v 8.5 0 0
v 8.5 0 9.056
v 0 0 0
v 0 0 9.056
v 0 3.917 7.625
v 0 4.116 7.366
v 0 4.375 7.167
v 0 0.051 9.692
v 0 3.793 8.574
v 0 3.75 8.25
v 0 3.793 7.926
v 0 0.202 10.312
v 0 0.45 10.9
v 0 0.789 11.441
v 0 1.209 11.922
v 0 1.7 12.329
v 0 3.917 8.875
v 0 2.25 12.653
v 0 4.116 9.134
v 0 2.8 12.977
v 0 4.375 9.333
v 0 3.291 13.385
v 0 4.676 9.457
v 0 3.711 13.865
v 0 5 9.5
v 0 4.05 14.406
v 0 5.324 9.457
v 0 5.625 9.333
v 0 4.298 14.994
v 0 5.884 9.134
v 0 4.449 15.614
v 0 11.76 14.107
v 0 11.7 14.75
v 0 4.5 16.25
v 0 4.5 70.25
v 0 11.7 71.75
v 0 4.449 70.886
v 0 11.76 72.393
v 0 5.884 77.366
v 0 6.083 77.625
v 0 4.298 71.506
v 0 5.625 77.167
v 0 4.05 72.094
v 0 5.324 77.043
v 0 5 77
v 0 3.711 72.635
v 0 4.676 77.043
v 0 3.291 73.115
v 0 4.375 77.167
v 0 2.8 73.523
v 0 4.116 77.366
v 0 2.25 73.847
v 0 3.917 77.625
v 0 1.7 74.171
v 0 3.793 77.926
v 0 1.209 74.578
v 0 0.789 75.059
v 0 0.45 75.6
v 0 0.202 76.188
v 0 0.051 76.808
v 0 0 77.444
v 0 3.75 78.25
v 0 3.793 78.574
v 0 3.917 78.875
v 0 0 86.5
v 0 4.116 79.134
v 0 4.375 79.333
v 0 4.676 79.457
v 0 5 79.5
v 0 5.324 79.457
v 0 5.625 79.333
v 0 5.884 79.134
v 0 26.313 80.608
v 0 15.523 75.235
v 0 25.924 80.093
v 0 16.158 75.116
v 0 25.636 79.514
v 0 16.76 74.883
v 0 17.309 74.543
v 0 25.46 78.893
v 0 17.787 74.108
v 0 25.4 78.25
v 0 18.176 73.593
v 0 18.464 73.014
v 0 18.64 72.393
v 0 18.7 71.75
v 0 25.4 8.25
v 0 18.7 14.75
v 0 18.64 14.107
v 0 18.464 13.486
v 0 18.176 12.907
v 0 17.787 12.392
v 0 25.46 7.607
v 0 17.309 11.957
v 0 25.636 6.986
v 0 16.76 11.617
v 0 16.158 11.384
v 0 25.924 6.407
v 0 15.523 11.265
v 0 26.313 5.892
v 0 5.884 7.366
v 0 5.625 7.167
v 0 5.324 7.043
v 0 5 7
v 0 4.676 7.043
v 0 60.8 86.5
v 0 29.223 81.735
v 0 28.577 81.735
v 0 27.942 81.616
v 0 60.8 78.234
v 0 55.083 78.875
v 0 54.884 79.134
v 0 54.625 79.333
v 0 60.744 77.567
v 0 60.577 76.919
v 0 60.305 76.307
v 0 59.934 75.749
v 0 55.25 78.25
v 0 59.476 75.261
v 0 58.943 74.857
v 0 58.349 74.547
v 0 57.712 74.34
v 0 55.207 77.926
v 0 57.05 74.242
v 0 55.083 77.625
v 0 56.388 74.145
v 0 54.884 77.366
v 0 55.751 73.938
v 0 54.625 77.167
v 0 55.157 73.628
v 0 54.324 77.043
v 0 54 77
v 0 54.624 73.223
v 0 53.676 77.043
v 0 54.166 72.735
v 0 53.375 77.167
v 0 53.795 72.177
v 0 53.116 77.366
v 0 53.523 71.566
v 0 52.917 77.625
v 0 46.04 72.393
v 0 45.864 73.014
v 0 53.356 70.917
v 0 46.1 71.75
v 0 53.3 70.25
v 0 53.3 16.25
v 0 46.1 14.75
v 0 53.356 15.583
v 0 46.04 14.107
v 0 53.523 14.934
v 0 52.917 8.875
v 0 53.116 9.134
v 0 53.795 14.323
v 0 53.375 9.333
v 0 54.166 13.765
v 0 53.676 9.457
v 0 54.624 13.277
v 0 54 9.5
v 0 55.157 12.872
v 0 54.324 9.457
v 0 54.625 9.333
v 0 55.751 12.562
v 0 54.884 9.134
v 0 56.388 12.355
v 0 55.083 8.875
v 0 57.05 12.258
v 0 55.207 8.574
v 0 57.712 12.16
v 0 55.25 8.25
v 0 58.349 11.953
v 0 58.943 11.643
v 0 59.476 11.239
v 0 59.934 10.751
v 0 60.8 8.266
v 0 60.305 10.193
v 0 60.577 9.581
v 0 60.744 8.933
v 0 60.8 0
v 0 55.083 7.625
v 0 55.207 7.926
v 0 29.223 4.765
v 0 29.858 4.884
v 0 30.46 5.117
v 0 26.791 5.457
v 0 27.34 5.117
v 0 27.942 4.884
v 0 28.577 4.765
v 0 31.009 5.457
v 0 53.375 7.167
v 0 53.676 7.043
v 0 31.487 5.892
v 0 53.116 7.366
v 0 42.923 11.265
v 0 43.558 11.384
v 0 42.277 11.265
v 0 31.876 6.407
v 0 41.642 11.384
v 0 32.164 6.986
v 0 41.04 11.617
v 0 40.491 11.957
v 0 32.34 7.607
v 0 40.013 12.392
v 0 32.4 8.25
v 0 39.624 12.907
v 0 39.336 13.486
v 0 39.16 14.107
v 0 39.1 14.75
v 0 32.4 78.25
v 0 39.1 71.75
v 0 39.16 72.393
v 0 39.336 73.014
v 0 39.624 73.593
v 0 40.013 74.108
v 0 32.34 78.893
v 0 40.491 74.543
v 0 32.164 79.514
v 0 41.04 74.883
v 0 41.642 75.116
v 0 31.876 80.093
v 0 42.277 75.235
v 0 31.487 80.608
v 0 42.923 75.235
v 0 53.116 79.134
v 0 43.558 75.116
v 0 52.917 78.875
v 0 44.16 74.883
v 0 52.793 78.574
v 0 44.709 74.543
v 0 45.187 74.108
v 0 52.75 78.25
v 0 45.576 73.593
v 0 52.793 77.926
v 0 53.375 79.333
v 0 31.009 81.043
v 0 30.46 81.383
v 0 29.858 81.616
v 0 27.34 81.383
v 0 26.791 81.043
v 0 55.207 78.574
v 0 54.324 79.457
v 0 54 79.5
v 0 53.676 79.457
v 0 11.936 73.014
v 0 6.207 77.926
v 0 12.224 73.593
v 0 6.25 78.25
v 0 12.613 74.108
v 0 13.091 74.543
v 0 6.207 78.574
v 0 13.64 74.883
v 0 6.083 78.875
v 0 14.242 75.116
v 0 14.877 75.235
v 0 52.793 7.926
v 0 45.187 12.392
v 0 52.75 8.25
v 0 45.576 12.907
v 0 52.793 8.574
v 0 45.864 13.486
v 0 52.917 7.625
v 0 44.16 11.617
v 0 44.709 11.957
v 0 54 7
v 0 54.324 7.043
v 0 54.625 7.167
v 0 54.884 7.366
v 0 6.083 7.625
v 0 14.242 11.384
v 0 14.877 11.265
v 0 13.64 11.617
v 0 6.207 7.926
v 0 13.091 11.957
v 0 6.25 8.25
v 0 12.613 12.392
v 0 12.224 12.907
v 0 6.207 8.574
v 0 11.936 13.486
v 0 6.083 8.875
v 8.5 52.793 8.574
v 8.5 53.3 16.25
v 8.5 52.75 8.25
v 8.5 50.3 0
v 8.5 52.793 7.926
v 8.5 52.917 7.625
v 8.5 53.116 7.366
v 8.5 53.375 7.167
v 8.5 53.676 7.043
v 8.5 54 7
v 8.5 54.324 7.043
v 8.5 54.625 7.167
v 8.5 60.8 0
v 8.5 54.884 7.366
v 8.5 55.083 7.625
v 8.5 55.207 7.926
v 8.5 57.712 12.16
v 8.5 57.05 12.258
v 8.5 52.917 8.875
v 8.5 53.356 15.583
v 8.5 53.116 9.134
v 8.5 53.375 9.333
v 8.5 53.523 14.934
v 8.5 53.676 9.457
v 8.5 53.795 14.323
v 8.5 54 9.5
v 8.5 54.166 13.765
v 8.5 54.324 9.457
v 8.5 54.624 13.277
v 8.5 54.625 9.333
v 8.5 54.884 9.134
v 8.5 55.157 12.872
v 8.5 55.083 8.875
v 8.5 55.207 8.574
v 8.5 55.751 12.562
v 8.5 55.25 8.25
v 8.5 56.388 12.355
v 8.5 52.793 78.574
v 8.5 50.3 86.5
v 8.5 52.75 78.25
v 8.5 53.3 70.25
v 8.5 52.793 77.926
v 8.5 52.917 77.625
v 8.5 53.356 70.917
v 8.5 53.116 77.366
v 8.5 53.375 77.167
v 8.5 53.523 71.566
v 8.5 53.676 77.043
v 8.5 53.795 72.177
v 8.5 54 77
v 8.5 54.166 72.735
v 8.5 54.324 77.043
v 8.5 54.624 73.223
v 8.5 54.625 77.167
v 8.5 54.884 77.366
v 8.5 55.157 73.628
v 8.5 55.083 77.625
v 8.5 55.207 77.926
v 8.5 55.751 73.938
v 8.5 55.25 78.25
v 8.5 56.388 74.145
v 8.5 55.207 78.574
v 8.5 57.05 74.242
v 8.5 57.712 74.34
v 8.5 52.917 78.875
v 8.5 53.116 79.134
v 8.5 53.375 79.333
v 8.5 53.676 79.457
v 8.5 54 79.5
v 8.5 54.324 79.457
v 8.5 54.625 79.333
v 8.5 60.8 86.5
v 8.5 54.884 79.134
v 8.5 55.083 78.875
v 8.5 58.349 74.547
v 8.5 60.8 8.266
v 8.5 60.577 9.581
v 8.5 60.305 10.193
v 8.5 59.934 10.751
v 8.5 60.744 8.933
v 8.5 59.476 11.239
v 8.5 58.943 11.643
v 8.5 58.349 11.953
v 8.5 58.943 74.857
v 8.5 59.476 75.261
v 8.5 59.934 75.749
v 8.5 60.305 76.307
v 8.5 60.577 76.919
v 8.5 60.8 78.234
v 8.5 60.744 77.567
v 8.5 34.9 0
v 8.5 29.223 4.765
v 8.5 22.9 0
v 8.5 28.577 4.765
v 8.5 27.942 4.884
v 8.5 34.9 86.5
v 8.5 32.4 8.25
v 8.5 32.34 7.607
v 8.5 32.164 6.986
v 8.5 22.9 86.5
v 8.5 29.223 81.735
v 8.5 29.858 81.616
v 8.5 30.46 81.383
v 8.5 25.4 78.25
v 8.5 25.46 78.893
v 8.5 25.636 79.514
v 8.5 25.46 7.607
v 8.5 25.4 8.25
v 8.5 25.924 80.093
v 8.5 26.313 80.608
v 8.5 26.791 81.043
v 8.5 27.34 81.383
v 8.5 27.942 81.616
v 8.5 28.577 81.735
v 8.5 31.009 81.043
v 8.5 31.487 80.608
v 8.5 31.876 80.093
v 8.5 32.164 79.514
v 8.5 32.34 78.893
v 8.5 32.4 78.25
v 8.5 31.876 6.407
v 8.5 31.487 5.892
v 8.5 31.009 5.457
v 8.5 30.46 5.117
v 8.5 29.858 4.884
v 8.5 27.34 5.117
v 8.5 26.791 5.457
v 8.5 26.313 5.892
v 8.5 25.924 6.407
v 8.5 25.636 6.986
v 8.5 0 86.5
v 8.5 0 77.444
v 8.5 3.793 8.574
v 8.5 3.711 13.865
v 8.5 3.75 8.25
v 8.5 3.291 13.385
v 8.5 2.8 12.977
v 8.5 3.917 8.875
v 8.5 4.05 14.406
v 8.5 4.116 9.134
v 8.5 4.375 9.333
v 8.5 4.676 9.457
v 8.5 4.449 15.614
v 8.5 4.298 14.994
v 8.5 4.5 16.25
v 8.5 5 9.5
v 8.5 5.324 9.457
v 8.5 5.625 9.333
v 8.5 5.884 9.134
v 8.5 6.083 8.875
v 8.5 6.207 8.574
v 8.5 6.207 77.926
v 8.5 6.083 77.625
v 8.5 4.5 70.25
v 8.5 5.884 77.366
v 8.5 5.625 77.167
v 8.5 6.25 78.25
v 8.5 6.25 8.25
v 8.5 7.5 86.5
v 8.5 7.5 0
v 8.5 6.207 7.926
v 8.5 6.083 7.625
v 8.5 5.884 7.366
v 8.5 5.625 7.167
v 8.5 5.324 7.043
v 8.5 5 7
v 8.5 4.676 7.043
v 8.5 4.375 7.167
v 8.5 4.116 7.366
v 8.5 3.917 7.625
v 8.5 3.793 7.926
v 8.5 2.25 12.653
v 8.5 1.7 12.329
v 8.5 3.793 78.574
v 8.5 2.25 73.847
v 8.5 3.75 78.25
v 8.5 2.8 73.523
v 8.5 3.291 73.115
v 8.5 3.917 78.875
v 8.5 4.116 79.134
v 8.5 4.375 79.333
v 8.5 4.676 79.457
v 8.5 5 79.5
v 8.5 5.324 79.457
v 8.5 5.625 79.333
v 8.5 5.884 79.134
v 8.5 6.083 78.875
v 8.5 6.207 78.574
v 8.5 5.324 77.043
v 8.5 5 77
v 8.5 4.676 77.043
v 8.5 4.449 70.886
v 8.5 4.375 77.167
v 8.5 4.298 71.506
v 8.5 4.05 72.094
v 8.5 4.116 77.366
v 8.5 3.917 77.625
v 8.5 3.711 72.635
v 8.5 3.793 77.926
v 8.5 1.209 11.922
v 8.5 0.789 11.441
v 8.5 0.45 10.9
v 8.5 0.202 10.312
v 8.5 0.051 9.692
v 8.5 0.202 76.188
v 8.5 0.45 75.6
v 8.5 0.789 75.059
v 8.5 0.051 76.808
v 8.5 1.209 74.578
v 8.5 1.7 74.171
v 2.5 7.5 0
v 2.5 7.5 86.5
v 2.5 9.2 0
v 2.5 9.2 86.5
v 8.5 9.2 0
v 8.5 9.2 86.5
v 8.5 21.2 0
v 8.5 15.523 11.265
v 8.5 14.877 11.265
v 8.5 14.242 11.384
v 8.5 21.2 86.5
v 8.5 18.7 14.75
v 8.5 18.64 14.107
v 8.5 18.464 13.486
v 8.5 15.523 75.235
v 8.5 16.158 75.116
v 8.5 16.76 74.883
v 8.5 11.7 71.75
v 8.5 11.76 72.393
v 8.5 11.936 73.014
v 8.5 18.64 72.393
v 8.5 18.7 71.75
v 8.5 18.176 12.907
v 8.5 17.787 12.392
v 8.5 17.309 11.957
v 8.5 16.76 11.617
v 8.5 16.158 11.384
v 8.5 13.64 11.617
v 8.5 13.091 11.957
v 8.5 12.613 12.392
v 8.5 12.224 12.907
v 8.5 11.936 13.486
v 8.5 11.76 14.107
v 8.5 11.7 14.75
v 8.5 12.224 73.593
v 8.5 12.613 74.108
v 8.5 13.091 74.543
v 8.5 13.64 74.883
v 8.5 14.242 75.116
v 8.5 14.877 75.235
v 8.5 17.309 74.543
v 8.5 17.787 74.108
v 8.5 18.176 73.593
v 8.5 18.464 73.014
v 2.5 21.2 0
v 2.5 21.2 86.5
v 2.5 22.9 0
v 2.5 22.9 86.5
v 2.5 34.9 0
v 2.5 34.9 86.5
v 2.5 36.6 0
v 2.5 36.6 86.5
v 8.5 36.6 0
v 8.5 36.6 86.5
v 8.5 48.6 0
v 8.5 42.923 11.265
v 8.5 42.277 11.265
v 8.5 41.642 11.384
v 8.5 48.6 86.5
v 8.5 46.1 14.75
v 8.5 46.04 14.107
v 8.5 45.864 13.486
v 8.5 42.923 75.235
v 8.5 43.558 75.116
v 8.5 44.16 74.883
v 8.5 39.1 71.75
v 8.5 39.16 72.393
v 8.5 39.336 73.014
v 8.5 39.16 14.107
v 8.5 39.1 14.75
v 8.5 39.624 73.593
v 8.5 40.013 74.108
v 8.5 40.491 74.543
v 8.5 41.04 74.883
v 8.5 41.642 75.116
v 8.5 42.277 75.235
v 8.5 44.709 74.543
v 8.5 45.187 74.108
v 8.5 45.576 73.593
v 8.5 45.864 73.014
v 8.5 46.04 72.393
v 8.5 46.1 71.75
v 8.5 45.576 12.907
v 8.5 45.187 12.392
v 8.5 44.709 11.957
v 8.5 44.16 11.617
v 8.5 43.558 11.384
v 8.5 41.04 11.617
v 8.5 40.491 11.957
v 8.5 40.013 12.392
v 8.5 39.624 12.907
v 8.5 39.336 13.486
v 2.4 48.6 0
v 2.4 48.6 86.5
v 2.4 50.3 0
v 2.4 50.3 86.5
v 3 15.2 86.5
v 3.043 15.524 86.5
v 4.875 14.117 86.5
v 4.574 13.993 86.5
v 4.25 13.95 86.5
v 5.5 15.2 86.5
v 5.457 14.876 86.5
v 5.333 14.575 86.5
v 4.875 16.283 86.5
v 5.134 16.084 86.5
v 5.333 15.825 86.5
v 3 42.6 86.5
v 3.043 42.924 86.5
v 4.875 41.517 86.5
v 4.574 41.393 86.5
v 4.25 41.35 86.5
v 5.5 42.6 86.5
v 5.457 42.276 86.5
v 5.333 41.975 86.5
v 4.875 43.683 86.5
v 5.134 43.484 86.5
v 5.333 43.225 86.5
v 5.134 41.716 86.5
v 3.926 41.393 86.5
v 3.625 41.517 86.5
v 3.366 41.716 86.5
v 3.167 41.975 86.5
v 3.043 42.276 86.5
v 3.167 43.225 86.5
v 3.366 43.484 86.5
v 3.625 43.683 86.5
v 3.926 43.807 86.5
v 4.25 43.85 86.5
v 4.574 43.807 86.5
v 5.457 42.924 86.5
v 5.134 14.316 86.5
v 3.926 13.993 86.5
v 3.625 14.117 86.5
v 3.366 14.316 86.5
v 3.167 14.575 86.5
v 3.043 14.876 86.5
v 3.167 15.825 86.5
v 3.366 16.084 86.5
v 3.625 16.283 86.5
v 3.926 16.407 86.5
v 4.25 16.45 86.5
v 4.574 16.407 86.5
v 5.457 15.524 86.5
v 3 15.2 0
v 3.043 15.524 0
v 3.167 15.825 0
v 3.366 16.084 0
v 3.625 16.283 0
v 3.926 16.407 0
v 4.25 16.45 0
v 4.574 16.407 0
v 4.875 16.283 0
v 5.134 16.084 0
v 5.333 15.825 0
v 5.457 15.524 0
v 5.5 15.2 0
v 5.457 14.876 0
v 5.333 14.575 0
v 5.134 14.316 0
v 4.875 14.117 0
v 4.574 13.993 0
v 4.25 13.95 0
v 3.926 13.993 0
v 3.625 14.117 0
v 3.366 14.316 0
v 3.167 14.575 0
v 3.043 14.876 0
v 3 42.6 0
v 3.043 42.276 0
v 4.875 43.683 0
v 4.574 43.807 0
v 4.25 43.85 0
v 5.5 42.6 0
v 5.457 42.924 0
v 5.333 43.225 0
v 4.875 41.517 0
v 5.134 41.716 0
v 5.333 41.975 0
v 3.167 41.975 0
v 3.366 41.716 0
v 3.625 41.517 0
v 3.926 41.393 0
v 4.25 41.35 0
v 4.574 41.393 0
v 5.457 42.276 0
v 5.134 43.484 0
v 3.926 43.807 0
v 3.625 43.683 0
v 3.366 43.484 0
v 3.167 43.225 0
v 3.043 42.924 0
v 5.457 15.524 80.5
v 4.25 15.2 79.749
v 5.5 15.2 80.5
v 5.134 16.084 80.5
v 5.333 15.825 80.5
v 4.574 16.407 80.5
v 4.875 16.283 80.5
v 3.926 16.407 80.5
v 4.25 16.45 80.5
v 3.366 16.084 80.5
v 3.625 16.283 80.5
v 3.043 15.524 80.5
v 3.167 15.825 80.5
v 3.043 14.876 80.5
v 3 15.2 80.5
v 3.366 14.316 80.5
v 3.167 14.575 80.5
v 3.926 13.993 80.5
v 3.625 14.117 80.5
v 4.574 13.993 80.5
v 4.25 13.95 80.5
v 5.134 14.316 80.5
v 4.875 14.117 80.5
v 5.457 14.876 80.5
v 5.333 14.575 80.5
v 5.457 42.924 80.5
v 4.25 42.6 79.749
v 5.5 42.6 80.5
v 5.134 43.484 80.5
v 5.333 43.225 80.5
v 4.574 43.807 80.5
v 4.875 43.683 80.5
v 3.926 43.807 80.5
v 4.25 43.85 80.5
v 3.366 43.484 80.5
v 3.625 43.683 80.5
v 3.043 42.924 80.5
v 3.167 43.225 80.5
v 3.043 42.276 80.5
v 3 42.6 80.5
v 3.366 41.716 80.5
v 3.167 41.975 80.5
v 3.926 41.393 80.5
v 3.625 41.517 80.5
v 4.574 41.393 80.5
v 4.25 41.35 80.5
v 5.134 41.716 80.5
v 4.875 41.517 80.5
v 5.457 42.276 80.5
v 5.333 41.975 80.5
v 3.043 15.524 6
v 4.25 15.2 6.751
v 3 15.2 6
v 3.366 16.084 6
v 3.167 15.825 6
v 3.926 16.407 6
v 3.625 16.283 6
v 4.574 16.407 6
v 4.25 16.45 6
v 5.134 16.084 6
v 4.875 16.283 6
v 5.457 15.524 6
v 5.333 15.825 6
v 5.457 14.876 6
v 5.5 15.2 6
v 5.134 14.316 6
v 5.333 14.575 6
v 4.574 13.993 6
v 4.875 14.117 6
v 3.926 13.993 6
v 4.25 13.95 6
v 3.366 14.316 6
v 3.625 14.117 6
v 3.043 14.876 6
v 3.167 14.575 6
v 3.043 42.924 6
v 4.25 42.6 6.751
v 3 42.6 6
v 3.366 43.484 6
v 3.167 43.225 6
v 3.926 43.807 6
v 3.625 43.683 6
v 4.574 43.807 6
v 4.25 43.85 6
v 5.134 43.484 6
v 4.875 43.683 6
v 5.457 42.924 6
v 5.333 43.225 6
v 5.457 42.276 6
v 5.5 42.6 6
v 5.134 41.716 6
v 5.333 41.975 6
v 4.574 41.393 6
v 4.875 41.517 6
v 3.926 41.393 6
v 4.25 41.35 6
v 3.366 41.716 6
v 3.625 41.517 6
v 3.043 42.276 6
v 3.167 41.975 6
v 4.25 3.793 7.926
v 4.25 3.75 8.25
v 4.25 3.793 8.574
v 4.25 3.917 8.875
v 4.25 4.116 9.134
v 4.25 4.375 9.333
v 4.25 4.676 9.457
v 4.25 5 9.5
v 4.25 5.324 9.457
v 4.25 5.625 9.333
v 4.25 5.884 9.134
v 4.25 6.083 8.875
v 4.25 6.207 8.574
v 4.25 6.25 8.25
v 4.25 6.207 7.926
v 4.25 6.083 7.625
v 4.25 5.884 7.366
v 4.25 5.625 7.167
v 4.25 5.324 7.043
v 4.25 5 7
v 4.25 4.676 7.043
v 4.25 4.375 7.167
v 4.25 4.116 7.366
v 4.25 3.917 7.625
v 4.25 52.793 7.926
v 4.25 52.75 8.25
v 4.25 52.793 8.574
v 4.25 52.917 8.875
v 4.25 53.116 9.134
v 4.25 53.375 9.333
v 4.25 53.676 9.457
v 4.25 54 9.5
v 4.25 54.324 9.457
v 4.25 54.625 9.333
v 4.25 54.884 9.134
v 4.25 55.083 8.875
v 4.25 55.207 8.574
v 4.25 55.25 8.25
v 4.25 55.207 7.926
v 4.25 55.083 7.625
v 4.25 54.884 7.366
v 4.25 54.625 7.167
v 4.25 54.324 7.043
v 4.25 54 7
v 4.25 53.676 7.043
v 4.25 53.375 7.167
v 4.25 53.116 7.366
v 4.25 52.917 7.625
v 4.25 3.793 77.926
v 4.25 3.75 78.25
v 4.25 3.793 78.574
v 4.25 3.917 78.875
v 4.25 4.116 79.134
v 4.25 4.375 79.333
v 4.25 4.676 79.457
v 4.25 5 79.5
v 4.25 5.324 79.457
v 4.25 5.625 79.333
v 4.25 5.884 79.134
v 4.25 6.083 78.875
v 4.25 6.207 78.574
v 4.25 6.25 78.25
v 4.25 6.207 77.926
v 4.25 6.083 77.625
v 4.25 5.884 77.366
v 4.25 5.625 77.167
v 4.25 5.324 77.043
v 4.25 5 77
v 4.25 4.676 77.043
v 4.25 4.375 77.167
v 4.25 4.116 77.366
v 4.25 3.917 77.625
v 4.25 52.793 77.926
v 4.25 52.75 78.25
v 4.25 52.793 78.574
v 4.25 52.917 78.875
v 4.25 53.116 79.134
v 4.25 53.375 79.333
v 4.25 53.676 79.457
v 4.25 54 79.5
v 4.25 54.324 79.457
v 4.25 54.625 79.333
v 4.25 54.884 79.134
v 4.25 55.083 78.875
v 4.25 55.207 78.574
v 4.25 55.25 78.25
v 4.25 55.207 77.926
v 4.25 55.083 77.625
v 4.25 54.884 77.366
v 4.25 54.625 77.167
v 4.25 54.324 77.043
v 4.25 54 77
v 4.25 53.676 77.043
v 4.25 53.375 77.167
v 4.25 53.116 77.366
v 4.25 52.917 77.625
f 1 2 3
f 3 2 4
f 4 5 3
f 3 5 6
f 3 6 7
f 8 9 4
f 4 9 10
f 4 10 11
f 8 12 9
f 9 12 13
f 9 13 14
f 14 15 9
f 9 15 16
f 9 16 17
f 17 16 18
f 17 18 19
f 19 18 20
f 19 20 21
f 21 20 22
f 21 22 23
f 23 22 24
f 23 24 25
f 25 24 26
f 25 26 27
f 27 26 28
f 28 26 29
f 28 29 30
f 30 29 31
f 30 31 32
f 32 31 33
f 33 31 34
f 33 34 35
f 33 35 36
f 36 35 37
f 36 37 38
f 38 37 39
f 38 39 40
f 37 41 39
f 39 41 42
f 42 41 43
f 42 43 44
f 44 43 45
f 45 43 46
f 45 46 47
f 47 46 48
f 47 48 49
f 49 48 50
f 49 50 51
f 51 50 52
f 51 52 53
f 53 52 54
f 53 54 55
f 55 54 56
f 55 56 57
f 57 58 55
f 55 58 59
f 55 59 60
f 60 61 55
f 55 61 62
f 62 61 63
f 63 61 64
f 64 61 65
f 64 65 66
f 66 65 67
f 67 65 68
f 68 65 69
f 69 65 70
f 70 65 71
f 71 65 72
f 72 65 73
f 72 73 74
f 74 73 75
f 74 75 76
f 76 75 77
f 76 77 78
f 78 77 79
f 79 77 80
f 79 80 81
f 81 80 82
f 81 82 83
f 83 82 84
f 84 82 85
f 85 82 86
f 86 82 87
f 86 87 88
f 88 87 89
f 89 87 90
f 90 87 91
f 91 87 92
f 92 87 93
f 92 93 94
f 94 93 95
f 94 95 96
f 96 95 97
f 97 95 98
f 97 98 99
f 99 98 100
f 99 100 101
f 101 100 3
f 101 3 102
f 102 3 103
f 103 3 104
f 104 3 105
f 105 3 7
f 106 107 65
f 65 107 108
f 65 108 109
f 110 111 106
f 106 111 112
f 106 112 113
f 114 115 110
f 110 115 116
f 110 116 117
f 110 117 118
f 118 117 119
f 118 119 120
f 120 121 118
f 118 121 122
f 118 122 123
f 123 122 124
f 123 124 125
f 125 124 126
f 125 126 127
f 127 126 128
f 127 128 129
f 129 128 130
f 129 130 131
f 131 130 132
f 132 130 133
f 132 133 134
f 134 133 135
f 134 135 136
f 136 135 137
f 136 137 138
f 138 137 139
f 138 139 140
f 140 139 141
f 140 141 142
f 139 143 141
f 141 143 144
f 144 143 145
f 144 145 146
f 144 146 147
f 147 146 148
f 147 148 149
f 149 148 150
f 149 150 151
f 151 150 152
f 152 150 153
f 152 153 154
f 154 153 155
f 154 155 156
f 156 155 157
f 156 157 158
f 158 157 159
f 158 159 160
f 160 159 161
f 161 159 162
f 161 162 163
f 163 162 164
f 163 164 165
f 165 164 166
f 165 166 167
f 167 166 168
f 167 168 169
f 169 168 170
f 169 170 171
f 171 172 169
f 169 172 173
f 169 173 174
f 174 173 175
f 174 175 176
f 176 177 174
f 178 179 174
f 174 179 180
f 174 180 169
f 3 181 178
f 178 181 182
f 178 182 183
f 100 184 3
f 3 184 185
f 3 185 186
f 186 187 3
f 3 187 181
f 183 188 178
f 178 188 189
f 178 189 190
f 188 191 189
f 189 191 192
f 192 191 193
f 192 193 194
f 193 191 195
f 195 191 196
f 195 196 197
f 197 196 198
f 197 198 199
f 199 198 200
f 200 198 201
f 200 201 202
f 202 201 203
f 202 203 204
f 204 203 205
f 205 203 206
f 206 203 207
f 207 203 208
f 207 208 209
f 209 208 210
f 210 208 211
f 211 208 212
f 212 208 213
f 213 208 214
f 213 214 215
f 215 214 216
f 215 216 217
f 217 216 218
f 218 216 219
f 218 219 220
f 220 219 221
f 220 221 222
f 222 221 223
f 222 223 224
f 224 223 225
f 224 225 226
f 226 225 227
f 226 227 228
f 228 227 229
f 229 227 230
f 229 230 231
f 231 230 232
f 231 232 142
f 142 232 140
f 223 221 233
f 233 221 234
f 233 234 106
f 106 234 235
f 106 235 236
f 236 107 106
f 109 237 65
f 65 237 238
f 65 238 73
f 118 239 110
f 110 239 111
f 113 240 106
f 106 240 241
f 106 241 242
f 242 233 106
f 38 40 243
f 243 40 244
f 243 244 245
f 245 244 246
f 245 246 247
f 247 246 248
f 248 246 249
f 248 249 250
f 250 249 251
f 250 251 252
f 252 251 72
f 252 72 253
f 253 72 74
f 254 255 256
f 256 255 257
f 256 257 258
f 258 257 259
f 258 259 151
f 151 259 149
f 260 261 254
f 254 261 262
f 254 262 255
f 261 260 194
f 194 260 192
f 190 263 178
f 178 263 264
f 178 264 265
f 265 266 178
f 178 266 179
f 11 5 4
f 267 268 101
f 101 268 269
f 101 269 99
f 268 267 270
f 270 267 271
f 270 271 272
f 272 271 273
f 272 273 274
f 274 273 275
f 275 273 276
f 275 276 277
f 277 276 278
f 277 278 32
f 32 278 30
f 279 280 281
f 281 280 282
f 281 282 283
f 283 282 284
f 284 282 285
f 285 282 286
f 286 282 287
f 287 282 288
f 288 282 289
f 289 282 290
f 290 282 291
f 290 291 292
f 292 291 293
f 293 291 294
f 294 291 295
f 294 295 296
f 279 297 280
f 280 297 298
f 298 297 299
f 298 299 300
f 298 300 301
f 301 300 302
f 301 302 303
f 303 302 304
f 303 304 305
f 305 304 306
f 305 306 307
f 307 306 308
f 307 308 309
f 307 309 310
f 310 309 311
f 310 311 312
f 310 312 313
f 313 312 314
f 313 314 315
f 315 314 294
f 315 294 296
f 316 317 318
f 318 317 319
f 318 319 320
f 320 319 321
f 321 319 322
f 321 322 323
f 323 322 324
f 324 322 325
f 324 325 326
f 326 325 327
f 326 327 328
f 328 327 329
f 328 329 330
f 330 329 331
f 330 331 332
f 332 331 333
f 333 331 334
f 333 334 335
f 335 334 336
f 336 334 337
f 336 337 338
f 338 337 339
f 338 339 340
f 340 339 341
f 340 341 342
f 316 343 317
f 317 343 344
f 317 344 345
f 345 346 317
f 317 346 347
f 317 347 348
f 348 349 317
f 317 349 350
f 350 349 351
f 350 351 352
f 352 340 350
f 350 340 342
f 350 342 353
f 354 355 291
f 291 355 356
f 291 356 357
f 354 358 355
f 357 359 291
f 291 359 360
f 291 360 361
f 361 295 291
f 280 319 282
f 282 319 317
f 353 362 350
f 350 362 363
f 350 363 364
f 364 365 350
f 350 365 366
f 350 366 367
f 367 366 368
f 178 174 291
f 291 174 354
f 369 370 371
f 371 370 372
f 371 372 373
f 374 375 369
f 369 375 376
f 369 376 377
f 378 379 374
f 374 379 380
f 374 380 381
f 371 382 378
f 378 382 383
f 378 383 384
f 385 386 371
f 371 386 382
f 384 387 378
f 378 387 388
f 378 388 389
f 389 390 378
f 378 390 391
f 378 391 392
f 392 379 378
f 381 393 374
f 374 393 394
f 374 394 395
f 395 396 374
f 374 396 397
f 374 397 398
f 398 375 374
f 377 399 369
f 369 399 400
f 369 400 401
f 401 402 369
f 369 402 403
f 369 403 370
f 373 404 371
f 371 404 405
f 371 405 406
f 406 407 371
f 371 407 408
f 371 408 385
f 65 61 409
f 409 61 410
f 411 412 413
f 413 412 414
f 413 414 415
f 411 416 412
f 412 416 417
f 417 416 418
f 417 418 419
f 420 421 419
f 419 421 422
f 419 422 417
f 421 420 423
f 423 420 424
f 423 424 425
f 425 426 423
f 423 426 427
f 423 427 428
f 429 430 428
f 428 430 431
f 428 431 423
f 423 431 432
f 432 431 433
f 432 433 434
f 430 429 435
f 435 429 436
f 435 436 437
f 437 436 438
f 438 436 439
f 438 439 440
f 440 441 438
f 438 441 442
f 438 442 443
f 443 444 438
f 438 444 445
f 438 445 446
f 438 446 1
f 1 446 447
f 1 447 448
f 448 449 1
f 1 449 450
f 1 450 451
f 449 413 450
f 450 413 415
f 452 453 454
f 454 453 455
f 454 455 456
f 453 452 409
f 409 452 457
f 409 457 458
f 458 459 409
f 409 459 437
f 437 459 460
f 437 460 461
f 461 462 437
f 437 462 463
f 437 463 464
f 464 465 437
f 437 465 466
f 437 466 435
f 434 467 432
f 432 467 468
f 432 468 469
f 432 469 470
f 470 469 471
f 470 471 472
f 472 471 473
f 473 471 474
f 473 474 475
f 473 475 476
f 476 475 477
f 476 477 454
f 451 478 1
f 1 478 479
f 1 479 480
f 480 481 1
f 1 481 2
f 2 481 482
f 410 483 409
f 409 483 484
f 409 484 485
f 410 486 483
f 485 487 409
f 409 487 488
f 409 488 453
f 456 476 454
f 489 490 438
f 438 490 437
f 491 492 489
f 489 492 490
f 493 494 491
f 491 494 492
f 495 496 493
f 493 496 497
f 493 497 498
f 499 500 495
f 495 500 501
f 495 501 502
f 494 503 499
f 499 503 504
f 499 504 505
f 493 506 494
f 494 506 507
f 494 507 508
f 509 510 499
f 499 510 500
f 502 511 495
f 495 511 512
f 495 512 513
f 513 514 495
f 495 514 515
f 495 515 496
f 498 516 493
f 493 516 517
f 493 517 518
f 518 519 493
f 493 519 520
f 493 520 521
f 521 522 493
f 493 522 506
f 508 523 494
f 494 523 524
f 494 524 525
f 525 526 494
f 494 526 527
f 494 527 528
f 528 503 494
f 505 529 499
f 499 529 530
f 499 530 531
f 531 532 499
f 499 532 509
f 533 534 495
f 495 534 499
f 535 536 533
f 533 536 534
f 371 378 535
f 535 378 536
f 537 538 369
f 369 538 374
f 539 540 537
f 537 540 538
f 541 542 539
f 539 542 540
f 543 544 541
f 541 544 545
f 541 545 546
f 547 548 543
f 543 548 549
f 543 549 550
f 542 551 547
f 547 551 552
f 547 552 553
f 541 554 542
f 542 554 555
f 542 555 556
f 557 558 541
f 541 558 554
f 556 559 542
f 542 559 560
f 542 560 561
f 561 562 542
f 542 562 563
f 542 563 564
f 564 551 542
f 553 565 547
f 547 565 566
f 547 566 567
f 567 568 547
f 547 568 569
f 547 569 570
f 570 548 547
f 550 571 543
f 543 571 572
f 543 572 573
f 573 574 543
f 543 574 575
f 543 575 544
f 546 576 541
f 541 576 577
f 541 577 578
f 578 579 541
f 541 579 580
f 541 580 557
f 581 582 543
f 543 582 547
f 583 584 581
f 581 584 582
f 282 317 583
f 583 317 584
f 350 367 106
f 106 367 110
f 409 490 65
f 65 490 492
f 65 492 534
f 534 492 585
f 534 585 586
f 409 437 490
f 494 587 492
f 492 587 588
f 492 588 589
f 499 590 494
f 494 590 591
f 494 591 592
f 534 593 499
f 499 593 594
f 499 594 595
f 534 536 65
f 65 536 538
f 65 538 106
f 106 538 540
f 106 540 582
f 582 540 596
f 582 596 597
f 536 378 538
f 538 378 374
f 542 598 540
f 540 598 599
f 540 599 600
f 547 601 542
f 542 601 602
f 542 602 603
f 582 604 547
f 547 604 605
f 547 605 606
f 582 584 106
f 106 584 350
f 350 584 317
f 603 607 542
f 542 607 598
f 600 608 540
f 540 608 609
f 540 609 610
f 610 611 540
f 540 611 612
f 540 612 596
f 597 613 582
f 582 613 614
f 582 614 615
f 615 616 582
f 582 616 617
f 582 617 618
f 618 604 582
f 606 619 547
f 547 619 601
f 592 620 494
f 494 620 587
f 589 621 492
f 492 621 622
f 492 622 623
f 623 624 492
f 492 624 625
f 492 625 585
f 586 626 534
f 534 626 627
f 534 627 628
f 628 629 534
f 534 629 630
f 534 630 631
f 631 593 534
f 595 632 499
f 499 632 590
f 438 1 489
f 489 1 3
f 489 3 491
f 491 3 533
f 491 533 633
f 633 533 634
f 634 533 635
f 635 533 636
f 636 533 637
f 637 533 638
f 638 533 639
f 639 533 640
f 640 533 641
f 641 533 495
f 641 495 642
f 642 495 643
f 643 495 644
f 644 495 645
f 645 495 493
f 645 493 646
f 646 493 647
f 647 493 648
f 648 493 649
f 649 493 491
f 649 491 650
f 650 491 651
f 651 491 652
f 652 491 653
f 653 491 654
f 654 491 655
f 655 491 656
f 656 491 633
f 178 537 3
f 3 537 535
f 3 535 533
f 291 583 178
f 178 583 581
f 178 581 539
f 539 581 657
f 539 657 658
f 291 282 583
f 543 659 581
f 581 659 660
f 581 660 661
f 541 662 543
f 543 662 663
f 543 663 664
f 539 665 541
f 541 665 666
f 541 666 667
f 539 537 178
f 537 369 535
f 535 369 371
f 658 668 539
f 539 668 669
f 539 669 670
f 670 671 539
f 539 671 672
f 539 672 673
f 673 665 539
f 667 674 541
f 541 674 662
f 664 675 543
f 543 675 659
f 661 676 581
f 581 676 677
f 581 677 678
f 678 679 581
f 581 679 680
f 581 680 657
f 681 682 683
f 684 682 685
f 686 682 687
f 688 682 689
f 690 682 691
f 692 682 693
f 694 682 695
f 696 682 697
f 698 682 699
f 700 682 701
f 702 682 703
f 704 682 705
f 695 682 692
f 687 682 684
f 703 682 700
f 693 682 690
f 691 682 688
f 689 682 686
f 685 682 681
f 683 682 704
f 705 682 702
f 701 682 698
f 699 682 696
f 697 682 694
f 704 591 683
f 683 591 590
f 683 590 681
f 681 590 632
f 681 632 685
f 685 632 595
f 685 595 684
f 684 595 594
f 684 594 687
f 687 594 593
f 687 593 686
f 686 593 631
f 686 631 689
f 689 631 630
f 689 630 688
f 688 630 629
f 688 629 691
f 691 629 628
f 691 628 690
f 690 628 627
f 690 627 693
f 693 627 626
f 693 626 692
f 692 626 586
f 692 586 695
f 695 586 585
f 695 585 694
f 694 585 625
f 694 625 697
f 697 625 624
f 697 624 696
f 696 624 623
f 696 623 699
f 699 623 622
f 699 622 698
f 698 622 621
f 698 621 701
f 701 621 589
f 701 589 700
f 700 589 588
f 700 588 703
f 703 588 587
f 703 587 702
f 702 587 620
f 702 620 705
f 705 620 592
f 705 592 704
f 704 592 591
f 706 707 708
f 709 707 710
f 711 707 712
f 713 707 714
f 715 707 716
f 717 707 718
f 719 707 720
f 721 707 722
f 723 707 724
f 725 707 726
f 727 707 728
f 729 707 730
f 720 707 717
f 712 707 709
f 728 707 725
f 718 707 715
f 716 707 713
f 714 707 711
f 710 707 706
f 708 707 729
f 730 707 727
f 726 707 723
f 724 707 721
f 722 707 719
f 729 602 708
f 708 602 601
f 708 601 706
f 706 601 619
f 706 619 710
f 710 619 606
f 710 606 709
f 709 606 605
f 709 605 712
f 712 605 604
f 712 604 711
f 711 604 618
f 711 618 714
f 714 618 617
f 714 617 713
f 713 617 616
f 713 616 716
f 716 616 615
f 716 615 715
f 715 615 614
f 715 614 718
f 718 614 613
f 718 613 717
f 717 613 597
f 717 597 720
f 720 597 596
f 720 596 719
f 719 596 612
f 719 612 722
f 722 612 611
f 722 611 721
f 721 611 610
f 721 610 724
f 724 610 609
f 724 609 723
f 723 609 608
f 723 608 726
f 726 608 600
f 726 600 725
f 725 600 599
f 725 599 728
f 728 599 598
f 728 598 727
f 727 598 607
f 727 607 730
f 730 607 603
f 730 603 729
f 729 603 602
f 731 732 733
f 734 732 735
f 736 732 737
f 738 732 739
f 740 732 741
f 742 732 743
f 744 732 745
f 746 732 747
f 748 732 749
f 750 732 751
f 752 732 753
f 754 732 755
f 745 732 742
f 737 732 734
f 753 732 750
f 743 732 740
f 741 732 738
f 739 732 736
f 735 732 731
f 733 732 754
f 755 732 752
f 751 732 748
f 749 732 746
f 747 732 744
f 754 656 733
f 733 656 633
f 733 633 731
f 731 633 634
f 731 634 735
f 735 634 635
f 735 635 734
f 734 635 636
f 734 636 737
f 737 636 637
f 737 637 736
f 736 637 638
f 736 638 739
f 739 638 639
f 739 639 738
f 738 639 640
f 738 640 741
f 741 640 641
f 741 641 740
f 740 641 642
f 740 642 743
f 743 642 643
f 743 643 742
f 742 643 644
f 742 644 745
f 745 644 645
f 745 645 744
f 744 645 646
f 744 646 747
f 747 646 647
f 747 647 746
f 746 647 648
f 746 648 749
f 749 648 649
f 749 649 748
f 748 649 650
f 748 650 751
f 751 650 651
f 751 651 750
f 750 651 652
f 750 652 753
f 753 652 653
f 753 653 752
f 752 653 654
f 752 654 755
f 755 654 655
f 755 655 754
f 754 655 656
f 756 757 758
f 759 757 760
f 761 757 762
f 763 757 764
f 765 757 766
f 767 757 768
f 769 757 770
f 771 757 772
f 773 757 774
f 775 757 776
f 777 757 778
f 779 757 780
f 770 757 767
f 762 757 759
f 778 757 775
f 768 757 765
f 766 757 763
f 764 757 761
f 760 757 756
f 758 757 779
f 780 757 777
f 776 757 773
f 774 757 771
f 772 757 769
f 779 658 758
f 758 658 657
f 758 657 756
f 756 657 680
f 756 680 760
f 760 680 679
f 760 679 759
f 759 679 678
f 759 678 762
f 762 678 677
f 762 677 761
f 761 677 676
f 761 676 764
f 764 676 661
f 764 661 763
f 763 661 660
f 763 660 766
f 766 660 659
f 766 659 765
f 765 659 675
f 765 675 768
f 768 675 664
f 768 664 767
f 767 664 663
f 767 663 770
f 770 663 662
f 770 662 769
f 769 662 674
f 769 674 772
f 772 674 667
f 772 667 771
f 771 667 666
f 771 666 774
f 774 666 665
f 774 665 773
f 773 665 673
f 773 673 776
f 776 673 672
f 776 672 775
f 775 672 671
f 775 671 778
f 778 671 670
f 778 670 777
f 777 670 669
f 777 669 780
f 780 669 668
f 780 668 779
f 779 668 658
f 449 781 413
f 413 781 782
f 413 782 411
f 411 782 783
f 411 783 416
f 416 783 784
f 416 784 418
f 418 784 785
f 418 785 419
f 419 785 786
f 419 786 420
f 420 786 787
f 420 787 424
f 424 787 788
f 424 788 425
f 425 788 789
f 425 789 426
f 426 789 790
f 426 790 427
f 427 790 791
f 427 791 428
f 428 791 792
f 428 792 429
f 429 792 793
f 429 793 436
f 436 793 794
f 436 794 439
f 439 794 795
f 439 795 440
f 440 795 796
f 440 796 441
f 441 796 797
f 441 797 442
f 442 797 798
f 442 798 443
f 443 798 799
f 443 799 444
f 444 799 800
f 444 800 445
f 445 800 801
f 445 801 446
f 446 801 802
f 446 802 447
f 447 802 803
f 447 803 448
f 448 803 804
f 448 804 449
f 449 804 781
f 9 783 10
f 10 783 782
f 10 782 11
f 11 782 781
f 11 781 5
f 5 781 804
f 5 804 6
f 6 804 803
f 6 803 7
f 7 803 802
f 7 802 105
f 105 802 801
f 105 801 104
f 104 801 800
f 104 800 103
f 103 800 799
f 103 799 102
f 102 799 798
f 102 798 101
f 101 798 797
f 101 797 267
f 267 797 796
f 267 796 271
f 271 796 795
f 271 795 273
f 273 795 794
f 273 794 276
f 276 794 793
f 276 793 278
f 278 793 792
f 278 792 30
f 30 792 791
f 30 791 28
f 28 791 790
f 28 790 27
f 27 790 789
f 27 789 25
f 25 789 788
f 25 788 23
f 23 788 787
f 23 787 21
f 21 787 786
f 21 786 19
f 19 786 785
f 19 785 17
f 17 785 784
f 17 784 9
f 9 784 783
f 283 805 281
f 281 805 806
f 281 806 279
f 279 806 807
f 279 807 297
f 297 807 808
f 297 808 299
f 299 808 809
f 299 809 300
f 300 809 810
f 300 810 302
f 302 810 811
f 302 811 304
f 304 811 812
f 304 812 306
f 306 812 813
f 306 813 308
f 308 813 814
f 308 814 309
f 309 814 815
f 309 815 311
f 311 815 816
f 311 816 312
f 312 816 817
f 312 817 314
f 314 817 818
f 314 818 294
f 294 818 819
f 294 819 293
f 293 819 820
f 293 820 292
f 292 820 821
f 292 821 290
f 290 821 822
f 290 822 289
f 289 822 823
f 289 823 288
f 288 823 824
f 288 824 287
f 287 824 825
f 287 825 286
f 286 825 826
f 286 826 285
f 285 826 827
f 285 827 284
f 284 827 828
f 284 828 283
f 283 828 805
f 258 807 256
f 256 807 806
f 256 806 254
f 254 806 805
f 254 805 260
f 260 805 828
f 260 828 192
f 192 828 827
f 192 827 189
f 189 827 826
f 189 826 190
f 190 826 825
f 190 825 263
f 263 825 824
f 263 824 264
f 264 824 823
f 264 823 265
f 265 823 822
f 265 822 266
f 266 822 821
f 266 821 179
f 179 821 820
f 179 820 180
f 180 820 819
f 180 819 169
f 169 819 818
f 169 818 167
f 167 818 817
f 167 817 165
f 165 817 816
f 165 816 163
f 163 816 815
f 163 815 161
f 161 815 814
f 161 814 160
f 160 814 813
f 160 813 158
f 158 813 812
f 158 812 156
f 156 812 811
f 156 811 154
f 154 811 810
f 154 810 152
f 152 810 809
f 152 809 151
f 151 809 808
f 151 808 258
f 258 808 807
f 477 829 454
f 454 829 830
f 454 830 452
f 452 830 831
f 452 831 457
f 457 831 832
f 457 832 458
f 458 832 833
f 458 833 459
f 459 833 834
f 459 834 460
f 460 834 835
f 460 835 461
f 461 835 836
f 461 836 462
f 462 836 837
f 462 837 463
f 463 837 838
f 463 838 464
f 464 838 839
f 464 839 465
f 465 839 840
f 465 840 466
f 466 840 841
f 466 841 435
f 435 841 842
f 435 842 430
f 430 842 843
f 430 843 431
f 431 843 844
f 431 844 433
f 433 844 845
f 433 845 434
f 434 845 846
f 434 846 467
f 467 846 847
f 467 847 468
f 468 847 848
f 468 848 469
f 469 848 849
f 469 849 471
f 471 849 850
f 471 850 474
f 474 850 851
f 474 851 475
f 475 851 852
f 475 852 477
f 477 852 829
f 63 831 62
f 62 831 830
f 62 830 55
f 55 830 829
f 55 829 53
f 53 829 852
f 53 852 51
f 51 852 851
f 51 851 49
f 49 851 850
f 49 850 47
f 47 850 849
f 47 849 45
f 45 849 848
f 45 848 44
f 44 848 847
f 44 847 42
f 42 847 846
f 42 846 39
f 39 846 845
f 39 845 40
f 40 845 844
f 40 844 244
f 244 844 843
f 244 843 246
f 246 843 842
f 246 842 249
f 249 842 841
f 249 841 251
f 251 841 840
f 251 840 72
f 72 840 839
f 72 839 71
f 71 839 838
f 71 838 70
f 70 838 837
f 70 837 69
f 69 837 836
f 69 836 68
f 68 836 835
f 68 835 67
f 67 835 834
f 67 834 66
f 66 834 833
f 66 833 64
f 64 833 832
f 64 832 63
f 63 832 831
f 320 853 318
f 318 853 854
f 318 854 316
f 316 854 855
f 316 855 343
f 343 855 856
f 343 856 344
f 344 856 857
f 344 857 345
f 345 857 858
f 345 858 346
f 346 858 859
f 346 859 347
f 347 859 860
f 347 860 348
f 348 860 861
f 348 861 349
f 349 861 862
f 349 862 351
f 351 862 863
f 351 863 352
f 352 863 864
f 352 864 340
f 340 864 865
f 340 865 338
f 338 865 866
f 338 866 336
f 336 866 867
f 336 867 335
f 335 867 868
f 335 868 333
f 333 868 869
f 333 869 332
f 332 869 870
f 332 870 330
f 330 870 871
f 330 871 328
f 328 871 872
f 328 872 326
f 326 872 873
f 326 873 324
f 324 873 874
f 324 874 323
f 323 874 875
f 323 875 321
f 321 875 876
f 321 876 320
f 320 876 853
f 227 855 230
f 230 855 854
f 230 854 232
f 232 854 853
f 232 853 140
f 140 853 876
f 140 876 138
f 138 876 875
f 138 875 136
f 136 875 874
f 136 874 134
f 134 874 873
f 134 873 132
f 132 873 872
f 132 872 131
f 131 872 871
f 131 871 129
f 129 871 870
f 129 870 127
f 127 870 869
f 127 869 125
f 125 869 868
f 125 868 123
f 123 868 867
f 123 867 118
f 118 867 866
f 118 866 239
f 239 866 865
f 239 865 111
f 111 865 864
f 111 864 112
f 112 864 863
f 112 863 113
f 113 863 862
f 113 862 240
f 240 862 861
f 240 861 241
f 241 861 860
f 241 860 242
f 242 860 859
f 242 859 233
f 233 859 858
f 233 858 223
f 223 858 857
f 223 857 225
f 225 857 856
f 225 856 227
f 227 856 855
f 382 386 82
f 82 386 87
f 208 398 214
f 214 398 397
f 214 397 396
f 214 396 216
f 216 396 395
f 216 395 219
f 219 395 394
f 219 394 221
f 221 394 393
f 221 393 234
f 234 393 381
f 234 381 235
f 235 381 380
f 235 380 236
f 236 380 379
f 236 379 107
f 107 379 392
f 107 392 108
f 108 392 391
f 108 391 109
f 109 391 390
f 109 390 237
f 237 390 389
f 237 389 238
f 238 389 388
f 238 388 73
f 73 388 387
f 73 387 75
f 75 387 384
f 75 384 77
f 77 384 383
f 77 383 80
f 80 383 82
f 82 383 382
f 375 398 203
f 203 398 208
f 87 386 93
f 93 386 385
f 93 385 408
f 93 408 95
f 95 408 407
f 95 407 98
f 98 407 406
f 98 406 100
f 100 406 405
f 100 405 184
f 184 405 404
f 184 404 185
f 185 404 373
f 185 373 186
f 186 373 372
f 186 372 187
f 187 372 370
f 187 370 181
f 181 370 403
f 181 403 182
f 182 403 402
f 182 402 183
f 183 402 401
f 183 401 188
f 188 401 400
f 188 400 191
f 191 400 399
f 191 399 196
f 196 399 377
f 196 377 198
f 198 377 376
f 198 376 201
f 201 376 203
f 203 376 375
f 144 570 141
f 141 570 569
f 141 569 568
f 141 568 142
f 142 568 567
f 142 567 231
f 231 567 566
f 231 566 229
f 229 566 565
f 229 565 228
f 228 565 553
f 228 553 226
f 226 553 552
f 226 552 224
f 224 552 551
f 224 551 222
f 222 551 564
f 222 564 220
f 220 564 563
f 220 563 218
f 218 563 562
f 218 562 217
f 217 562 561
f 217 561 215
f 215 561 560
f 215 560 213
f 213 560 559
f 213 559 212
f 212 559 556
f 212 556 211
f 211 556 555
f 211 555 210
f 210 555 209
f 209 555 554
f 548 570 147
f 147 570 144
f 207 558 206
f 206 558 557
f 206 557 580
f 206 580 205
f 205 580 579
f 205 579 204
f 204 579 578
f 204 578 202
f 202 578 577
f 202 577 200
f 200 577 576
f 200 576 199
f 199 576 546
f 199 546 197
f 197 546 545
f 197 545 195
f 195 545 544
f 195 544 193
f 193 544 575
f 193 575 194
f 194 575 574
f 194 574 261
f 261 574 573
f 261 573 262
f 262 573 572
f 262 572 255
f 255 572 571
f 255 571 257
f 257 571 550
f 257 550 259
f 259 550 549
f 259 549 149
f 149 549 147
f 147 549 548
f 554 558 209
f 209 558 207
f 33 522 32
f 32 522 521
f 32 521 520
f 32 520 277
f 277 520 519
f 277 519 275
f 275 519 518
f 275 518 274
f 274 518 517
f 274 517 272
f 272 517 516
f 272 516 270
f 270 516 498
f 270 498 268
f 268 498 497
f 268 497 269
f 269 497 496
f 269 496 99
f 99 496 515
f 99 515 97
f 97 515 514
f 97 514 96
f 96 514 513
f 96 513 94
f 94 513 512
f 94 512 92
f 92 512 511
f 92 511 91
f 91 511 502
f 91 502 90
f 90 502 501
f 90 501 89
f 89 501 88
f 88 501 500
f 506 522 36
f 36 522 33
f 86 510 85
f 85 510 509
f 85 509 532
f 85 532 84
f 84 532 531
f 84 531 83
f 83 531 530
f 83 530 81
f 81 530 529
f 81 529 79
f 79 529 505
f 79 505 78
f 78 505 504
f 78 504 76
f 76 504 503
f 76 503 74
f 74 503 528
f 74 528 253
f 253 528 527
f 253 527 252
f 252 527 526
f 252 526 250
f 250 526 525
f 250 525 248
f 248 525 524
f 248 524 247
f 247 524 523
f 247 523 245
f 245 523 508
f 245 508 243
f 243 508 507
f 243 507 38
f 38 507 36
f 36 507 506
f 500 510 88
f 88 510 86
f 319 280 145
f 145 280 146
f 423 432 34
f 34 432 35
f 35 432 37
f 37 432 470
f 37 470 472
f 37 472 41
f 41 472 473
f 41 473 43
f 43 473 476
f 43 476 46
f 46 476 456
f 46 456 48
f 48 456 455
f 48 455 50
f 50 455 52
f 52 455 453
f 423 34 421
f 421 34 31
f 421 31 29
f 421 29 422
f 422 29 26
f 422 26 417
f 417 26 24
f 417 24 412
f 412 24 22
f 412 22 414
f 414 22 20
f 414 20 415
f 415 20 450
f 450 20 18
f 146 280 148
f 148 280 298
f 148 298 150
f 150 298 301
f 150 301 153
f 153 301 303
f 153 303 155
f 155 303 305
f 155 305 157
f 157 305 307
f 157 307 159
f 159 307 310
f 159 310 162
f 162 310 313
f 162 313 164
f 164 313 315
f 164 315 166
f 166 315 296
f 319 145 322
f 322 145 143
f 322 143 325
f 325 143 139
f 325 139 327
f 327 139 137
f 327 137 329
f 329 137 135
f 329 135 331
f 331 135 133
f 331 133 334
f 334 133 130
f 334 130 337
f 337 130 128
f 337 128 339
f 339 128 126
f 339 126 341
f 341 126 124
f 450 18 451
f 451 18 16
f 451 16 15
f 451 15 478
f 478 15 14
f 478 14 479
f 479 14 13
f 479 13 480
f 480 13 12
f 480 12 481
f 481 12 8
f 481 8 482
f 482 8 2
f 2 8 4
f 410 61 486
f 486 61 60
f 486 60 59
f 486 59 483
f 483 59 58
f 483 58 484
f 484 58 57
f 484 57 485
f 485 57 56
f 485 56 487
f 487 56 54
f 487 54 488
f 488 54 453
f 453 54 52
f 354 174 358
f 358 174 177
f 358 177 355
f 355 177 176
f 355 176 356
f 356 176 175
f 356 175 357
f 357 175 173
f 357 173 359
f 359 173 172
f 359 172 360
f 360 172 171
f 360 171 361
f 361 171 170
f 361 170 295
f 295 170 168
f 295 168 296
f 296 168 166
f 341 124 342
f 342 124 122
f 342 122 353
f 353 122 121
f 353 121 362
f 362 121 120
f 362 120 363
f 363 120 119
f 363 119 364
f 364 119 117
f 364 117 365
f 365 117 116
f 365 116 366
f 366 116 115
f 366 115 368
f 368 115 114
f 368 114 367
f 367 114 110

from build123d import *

# Parameters (mm, degrees)
BOSS_EXTRUDE1_DEPTH            = 86.5
M3X0_5_TAPPED_HOLE2_AT_2_COUNT = 2
M3X0_5_TAPPED_HOLE2_AT_2_PITCH = 27.4
M3X0_5_TAPPED_HOLE1_D          = 2.5
SKETCH14_R                     = 3.5
CUT_EXTRUDE3_DEPTH             = 9.5
CUT_EXTRUDE1_DEPTH             = 9.5
SKETCH15_W                     = 62
SKETCH15_H                     = 7.5
CUT_EXTRUDE4_DEPTH             = 9.5
SKETCH16_W                     = 62
SKETCH16_H                     = 4.5
CUT_EXTRUDE5_DEPTH             = 9.5
FILLET2_R                      = 4
FILLET3_R                      = 4


with BuildPart() as part:
    # Sketch1 → Boss-Extrude1 (new body)
    with BuildSketch(Plane.XY):
        Polygon((0, 0), (0, 60.8), (8.5, 60.8), (8.5, 50.3), (2.4, 50.3), (2.4, 48.6), (8.5, 48.6), (8.5, 36.6), (2.5, 36.6), (2.5, 34.9), (8.5, 34.9), (8.5, 22.9), (2.5, 22.9), (2.5, 21.2), (8.5, 21.2), (8.5, 9.2), (2.5, 9.2), (2.5, 7.5), (8.5, 7.5), (8.5, 0), align=None)
    extrude(amount=BOSS_EXTRUDE1_DEPTH)

    # Sketch4 → M3x0.5 Tapped Hole2 (revolve, cut)
    with BuildSketch(Plane(origin=(4.25, 42.6, 86.5), x_dir=(0, -1, 0), z_dir=(1, 0, 0))):
        Polygon((0, 0), (0, 6.751075774), (1.25, 6), (1.25, 0), align=None)
    m3x0_5_tapped_hole2 = revolve(axis=Axis((4.25, 42.6, 92.85), (0, 0, -1)), mode=Mode.SUBTRACT)

    # M3x0.5 Tapped Hole2 at 2: M3x0.5 Tapped Hole2 ×2
    with Locations(*[(0, -i * M3X0_5_TAPPED_HOLE2_AT_2_PITCH, 0) for i in range(1, M3X0_5_TAPPED_HOLE2_AT_2_COUNT)]):
        add(m3x0_5_tapped_hole2, mode=Mode.SUBTRACT)

    # Mirror1: M3x0.5 Tapped Hole2 across plane
    add(m3x0_5_tapped_hole2.mirror(Plane.XY.offset(43.25)), mode=Mode.SUBTRACT)

    # Mirror1 copy 1 sketch → Mirror1 copy 1 (revolve, cut)
    with BuildSketch(Plane(origin=(4.25, 15.2, 0), x_dir=(0, -1, 0), z_dir=(1, 0, 0))):
        Polygon((0, 0), (0, -6.751075774), (1.25, -6), (1.25, 0), align=None)
    revolve(axis=Axis((4.25, 15.2, -6.35), (0, 0, -1)), mode=Mode.SUBTRACT)

    # M3x0.5 Tapped Hole1 (through all)
    with Locations(Plane.ZY):
        with Locations((8.25, 5), (8.25, 54)):
            m3x0_5_tapped_hole1 = Hole(M3X0_5_TAPPED_HOLE1_D / 2)

    # Mirror2: M3x0.5 Tapped Hole1 across plane
    add(m3x0_5_tapped_hole1.mirror(Plane(origin=(0, 0, 43.25), x_dir=(1, 0, 0), z_dir=(0, 0, -1))), mode=Mode.SUBTRACT)

    # Sketch14 → Cut-Extrude3 (cut, through all)
    with BuildSketch(Plane(origin=(8.5, 0, 0), x_dir=(0, 0, -1), z_dir=(1, 0, 0))):
        with BuildLine():
            Line((-8.25, 32.4), (-78.25, 32.4))
            ThreePointArc((-78.25, 32.4), (-75.775126266, 31.374873734), (-74.75, 28.9))
            ThreePointArc((-74.75, 28.9), (-75.775126266, 26.425126266), (-78.25, 25.4))
            Line((-78.25, 25.4), (-8.25, 25.4))
            ThreePointArc((-8.25, 25.4), (-11.75, 28.9), (-8.25, 32.4))
        make_face()
        with Locations((-78.25, 28.9)):
            Circle(SKETCH14_R)
        with Locations((-8.25, 28.9)):
            Circle(SKETCH14_R)
    extrude(amount=-CUT_EXTRUDE3_DEPTH, mode=Mode.SUBTRACT)

    # Sketch12 → Cut-Extrude1 (cut, through all)
    with BuildSketch(Plane(origin=(8.5, 0, 0), x_dir=(0, 0, -1), z_dir=(1, 0, 0))):
        with BuildLine():
            Line((-14.75, 46.1), (-71.75, 46.1))
            ThreePointArc((-71.75, 46.1), (-75.25, 42.6), (-71.75, 39.1))
            Line((-71.75, 39.1), (-14.75, 39.1))
            ThreePointArc((-14.75, 39.1), (-11.25, 42.6), (-14.75, 46.1))
        make_face()
        with BuildLine():
            Line((-14.75, 18.7), (-71.75, 18.7))
            ThreePointArc((-71.75, 18.7), (-75.25, 15.2), (-71.75, 11.7))
            Line((-71.75, 11.7), (-14.75, 11.7))
            ThreePointArc((-14.75, 11.7), (-11.25, 15.2), (-14.75, 18.7))
        make_face()
    extrude(amount=-CUT_EXTRUDE1_DEPTH, mode=Mode.SUBTRACT)

    # Sketch15 → Cut-Extrude4 (cut, through all)
    with BuildSketch(Plane(origin=(8.5, 0, 0), x_dir=(0, 0, -1), z_dir=(1, 0, 0))):
        with Locations((-43.25, 57.05)):
            Rectangle(SKETCH15_W, SKETCH15_H)
    extrude(amount=-CUT_EXTRUDE4_DEPTH, mode=Mode.SUBTRACT)

    # Sketch16 → Cut-Extrude5 (cut, through all)
    with BuildSketch(Plane(origin=(8.5, 0, 0), x_dir=(0, 0, -1), z_dir=(1, 0, 0))):
        with Locations((-43.25, 2.25)):
            Rectangle(SKETCH16_W, SKETCH16_H)
    extrude(amount=-CUT_EXTRUDE5_DEPTH, mode=Mode.SUBTRACT)

    # Fillet2
    fillet2_edges = [part.edges().sort_by_distance(p)[0] for p in [
        (4.25, 53.3, 12.25),
        (4.25, 53.3, 74.25),
        (4.25, 4.5, 12.25),
        (4.25, 4.5, 74.25),
    ]]
    fillet(fillet2_edges, radius=FILLET2_R)

    # Fillet3
    fillet3_edges = [part.edges().sort_by_distance(p)[0] for p in [
        (4.25, 0, 12.25),
        (4.25, 0, 74.25),
        (4.25, 60.8, 12.25),
        (4.25, 60.8, 74.25),
    ]]
    fillet(fillet3_edges, radius=FILLET3_R)


solid = part.part
